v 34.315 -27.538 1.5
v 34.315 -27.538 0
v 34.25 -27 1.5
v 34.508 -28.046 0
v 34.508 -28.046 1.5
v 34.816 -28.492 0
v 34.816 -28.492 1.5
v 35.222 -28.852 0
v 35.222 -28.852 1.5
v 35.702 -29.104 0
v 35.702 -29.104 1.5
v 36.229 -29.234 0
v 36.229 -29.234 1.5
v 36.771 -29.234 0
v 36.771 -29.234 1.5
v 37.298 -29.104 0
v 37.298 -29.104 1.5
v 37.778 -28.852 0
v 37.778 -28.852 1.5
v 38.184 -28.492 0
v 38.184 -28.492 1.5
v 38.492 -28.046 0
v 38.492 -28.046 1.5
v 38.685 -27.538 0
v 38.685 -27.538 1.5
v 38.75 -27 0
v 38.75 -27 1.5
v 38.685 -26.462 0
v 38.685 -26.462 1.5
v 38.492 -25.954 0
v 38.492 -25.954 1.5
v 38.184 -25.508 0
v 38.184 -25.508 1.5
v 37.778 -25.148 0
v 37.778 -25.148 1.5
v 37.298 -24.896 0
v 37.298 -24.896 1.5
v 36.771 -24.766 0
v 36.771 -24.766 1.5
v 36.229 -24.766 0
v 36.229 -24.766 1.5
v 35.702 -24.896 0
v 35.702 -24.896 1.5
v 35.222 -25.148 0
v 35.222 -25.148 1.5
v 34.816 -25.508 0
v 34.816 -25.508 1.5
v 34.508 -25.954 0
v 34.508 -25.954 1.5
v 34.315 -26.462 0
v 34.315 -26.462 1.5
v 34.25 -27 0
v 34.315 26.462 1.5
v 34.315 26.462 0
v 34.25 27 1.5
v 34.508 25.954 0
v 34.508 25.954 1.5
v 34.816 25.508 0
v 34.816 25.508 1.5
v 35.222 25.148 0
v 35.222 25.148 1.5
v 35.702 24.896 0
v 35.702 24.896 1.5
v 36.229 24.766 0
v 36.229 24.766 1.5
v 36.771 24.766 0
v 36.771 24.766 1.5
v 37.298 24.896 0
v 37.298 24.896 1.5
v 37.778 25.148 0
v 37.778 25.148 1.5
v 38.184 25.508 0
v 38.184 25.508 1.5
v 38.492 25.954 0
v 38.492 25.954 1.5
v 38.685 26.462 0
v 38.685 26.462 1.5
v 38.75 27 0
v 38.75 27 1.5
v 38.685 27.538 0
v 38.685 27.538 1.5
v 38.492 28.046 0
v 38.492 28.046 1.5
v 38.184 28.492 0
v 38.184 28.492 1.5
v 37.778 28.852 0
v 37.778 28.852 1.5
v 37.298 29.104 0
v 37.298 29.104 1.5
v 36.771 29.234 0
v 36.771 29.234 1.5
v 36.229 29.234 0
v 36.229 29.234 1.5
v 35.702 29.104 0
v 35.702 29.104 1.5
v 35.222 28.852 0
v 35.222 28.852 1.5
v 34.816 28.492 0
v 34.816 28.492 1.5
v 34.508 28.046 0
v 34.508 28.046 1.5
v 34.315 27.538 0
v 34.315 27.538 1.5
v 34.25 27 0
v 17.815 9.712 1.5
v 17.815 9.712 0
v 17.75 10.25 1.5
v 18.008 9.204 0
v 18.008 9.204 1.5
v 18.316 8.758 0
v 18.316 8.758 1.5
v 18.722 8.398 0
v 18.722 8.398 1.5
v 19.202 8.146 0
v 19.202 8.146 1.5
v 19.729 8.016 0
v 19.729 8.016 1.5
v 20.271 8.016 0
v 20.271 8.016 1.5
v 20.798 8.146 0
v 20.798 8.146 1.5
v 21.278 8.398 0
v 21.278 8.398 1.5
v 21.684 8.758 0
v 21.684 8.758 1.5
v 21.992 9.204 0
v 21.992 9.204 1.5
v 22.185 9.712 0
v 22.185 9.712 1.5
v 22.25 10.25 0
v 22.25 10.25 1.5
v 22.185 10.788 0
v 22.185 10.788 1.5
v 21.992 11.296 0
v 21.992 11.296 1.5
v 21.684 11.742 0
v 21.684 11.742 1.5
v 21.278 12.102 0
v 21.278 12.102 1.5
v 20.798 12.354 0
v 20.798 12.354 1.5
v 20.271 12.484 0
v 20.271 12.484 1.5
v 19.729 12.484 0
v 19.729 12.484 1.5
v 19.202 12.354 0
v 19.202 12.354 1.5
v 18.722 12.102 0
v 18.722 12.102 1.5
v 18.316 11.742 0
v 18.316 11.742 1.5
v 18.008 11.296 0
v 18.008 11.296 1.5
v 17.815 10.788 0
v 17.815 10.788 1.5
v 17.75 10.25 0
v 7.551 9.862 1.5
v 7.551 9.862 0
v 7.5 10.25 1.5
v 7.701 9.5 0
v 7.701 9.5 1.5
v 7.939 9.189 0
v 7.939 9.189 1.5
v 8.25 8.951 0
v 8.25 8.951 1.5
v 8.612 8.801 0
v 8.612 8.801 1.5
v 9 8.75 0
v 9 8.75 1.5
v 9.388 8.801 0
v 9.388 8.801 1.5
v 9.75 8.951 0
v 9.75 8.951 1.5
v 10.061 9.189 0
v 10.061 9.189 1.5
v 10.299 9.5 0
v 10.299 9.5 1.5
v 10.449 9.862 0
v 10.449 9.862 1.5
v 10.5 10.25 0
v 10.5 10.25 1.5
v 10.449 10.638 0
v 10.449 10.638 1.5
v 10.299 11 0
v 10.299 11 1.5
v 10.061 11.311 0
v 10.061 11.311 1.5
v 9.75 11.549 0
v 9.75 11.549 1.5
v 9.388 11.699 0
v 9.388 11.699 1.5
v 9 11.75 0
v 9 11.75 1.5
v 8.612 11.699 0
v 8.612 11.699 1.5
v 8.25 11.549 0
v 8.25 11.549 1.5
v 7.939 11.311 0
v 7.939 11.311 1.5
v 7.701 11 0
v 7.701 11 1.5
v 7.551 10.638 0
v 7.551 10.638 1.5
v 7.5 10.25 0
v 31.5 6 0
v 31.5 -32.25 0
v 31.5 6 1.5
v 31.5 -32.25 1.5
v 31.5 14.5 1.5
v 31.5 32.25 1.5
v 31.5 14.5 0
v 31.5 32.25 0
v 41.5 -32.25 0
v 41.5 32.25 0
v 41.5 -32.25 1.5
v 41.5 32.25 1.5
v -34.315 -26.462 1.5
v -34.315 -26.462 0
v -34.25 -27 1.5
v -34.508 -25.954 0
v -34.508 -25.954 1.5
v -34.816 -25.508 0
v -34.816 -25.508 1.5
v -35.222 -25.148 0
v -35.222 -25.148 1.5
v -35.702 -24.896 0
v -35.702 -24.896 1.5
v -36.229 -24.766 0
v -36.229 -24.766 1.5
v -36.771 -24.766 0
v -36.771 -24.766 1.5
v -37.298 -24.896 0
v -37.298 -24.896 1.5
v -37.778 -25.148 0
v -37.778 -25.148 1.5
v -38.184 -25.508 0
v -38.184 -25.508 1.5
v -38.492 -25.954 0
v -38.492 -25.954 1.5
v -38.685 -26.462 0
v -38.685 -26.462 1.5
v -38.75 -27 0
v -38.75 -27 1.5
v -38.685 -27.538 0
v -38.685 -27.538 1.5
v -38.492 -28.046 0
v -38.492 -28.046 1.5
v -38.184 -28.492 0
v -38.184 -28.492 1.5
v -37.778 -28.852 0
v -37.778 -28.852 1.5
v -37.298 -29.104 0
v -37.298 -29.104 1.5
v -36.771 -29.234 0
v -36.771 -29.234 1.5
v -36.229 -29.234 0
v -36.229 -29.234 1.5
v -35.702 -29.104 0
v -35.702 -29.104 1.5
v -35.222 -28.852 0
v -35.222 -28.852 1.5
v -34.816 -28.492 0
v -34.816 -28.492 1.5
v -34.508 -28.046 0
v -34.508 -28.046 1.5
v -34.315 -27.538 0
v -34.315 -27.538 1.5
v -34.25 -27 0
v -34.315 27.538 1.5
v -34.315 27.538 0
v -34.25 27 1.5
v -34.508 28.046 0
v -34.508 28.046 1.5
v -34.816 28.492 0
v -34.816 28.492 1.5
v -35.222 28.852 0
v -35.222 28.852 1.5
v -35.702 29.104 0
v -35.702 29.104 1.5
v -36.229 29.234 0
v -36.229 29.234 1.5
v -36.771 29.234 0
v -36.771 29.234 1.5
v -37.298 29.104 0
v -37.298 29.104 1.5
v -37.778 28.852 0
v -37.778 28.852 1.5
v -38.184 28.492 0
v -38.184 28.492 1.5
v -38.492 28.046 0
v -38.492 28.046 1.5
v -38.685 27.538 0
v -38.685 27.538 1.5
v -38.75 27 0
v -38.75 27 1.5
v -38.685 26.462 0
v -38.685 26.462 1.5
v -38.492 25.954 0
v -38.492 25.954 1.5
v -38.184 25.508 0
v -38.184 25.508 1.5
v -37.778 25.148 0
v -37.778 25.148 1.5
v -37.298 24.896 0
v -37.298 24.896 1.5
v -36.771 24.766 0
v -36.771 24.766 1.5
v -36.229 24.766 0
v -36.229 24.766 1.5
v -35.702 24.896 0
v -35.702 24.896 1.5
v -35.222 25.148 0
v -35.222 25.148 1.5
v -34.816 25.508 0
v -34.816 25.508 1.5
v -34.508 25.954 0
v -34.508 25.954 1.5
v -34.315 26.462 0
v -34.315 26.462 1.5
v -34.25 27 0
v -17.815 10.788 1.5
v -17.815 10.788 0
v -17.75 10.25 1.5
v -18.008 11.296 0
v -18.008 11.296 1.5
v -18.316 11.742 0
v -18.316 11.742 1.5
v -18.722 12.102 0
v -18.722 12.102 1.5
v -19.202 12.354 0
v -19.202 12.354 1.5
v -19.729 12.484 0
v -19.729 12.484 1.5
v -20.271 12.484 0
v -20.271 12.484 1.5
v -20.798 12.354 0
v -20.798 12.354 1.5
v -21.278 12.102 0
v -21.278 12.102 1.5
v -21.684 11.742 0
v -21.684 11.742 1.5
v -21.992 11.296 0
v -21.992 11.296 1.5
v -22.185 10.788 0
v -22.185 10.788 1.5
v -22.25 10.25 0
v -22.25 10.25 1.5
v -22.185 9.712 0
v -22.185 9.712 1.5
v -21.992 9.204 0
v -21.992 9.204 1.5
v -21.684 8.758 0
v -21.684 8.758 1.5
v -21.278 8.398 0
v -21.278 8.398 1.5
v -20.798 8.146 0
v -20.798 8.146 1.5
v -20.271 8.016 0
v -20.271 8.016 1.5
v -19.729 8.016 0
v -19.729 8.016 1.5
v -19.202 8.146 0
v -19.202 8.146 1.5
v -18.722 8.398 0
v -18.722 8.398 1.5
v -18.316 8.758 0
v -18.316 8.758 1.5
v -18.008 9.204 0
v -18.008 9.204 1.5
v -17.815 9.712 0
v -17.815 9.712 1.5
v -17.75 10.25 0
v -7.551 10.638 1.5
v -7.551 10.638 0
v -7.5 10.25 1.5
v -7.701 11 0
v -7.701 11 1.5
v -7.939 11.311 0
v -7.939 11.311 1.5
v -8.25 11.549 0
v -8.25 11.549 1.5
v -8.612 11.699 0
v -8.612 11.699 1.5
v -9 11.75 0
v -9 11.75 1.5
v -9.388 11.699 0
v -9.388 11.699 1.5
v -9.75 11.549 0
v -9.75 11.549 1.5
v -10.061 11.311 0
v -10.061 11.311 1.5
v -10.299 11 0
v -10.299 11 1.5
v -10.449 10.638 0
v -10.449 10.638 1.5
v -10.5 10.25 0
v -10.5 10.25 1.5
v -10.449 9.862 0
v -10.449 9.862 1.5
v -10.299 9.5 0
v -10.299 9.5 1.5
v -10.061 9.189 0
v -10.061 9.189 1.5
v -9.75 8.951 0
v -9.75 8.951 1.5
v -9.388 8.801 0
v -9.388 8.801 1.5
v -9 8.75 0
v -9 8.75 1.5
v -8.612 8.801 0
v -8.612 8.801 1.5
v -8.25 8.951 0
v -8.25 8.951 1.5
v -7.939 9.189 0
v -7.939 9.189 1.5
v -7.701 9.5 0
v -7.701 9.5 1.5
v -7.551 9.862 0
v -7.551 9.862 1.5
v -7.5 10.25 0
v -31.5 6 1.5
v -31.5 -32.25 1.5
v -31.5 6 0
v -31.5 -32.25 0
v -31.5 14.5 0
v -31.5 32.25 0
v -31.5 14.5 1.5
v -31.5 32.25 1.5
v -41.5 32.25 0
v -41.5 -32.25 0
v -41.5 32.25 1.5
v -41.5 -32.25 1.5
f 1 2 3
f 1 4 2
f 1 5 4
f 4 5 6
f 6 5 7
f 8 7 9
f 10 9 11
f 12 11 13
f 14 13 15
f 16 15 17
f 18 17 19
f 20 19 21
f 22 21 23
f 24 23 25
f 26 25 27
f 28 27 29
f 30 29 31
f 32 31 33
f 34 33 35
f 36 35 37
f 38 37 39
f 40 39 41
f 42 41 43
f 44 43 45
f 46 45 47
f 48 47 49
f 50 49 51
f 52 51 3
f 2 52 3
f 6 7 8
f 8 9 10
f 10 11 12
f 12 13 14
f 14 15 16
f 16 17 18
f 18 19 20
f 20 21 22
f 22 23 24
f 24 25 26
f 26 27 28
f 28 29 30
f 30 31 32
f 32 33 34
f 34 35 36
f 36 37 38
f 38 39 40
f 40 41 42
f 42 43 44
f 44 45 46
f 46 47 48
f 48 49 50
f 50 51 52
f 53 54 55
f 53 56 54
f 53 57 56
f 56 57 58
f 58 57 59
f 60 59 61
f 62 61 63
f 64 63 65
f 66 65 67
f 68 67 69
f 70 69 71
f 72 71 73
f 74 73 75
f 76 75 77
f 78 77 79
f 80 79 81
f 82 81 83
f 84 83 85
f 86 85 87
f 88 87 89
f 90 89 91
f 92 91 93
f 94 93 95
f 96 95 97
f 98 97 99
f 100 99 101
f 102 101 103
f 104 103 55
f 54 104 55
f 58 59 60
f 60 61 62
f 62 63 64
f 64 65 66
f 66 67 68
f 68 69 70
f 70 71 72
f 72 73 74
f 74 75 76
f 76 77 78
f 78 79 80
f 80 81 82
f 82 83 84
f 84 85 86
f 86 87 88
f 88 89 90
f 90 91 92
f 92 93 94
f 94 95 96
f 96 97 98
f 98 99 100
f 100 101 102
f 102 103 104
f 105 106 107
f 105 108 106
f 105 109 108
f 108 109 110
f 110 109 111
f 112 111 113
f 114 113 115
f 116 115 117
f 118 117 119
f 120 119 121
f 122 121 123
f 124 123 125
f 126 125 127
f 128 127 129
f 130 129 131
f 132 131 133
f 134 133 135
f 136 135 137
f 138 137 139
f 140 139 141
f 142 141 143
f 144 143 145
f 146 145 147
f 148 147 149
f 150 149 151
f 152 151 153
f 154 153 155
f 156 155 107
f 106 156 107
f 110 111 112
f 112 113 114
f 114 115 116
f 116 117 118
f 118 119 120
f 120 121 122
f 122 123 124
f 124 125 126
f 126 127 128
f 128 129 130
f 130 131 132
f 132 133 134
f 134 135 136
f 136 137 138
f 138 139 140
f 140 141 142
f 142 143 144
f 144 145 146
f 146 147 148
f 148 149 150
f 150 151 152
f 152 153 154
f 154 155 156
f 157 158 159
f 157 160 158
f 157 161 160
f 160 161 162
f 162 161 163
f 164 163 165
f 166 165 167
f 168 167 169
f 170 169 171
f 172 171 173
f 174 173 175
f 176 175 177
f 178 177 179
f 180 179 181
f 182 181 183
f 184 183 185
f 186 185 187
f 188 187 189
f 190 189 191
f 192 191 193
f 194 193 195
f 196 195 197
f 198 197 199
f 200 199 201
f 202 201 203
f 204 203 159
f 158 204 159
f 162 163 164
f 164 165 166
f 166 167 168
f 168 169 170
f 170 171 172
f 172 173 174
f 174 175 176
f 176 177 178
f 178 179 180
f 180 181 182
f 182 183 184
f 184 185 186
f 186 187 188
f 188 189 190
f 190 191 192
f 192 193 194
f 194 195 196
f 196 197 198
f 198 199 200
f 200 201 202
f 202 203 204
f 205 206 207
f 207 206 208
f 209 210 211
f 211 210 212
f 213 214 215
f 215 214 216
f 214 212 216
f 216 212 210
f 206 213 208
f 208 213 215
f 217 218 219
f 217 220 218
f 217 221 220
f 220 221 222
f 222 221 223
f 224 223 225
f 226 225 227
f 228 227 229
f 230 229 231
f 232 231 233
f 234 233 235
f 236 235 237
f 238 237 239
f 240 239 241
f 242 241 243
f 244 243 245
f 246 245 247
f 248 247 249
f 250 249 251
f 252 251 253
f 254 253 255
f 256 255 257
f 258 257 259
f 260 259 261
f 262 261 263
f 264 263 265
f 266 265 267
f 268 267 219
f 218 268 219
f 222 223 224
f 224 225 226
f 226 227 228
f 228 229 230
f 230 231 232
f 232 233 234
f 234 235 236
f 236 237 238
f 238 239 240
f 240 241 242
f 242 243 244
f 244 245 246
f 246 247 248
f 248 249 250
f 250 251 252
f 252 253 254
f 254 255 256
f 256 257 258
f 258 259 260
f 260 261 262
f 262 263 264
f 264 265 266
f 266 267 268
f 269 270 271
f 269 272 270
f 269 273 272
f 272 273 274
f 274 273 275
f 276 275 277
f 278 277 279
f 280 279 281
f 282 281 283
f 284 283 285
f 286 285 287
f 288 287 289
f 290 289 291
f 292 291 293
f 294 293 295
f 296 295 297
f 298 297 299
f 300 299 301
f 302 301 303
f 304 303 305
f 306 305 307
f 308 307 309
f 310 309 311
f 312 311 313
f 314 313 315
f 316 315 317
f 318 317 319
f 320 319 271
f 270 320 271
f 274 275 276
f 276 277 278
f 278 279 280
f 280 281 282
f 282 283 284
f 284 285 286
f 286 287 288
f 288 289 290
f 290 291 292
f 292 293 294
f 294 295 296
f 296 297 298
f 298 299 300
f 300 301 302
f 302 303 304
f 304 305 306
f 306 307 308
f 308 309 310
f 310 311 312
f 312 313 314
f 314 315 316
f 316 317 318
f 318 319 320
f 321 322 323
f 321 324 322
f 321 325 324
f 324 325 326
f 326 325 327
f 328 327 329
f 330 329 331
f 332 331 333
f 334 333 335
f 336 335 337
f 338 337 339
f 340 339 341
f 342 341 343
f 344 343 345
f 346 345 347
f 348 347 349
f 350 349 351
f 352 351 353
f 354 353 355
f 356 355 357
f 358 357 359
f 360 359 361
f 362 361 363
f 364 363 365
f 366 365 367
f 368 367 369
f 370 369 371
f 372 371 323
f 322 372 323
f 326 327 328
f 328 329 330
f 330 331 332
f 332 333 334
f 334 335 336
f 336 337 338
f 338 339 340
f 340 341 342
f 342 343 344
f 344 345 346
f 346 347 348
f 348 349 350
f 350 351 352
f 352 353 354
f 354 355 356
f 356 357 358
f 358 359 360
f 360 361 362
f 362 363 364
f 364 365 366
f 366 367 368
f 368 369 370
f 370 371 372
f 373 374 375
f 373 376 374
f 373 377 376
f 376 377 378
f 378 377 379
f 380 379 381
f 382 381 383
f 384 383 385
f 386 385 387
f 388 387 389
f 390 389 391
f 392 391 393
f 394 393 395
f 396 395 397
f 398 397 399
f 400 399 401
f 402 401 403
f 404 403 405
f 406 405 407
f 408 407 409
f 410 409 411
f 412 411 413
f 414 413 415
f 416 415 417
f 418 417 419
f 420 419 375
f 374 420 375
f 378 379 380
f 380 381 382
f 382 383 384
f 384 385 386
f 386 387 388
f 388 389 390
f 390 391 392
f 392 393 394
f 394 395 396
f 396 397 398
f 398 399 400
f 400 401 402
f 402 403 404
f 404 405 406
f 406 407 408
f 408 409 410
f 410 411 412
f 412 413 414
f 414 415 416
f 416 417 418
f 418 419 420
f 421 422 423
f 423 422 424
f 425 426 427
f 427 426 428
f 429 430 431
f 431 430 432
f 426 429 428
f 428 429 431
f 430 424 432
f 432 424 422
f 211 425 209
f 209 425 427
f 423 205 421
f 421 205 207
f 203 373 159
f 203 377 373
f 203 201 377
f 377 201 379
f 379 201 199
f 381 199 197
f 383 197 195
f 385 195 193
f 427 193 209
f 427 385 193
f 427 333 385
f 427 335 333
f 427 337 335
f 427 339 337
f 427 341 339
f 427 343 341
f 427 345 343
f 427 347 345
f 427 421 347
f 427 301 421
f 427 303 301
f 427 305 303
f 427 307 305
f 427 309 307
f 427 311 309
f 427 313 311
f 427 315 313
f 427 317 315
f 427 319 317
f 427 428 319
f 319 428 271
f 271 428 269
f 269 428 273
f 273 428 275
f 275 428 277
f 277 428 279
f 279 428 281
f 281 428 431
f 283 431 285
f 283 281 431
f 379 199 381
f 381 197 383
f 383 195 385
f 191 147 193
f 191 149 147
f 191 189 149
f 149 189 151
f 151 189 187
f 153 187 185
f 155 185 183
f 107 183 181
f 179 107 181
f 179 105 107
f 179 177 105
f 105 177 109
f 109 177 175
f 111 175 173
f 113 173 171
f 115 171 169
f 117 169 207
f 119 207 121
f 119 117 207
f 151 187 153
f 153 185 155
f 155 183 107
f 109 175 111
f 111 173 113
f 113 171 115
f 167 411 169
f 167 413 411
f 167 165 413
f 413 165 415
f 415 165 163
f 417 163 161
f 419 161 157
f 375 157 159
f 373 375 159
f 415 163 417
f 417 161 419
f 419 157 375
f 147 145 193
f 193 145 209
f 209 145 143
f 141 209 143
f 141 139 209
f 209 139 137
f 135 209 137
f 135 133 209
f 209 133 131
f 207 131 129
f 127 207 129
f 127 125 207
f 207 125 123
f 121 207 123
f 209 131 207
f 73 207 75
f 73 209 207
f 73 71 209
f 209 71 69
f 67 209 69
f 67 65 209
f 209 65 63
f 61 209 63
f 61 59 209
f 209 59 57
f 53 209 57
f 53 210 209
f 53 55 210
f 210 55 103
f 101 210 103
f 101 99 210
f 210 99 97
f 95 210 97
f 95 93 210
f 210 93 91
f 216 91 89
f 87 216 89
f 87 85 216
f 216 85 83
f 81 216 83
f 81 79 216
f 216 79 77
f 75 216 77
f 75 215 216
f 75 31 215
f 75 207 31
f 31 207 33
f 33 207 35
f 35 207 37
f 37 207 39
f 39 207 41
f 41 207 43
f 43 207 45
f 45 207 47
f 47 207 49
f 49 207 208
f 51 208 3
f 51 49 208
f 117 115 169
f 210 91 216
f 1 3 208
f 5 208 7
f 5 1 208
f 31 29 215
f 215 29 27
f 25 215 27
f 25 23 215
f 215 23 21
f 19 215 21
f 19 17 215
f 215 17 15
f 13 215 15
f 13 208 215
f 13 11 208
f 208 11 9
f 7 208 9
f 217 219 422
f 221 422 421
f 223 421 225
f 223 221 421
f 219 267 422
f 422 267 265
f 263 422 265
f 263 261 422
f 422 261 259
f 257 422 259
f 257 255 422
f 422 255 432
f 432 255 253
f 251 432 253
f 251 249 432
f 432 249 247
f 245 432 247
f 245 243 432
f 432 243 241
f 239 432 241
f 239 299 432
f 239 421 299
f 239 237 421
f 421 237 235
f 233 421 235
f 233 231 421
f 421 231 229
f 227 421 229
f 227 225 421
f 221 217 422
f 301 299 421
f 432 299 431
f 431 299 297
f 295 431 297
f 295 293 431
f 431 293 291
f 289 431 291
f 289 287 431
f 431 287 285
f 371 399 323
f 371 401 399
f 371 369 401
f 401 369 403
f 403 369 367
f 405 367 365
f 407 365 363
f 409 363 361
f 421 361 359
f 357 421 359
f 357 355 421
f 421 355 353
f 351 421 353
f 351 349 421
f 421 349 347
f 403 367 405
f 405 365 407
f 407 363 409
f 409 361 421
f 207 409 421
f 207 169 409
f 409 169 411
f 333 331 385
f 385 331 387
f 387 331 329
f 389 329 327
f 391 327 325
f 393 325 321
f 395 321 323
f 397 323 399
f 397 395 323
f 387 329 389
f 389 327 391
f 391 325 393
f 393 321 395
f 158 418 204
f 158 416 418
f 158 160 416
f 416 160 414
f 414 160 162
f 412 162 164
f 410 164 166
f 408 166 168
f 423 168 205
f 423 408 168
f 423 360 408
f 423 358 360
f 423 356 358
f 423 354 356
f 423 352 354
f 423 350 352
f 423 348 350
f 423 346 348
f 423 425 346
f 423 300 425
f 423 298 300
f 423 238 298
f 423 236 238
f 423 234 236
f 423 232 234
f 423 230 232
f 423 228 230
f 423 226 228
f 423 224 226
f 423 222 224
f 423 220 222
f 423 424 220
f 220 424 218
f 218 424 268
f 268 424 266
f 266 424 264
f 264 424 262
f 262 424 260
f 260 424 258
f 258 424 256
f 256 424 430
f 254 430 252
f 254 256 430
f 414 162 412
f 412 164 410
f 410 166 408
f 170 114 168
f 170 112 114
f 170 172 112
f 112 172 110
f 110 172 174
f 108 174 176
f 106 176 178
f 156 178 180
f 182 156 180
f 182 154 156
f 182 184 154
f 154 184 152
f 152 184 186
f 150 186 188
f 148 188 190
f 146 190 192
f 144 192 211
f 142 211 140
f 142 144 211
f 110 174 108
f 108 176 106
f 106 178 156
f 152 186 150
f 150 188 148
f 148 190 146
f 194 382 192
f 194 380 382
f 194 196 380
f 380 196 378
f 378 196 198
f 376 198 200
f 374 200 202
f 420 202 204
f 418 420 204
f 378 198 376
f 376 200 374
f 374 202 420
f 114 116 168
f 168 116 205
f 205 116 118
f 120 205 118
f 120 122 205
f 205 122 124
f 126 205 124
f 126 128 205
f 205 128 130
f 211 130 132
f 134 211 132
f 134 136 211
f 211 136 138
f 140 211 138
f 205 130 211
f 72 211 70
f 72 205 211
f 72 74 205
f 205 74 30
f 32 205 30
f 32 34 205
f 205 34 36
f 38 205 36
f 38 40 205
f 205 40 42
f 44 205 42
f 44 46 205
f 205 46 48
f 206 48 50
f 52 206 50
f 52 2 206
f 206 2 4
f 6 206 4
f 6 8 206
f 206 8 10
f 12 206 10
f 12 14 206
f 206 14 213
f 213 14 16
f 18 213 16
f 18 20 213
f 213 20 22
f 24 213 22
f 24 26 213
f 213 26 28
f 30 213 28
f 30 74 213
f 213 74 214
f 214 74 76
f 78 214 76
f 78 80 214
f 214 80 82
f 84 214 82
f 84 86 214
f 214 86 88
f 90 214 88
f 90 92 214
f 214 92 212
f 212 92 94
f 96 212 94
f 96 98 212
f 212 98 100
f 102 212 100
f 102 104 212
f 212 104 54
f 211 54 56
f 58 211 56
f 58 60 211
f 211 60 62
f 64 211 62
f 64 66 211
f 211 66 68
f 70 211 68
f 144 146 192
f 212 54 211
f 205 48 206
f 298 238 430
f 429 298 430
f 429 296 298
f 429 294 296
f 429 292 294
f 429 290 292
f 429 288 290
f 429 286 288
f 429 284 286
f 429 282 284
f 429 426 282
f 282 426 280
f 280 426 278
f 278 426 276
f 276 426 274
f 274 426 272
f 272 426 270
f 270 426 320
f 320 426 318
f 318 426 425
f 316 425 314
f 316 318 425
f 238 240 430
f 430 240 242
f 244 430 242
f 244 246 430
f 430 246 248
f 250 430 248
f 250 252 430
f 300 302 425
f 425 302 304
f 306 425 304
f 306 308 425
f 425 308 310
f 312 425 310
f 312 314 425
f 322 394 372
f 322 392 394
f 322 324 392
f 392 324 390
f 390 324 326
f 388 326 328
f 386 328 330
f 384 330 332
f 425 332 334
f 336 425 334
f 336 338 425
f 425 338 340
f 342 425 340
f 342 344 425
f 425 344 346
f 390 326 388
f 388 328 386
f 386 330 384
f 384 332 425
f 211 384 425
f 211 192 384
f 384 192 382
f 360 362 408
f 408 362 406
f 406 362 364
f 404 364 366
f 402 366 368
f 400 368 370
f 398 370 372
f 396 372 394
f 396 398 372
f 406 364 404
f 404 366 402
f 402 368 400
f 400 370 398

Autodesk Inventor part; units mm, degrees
ref_plane "YZ Plane" through (0, 0, 0) normal (1, 0, 0) x (0, 1, 0)
ref_plane "XZ Plane" through (0, 0, 0) normal (0, 1, 0) x (-1, 0, 0)
ref_plane "XY Plane" through (0, 0, 0) normal (0, 0, 1) x (1, 0, 0)
sketch "Sketch1" plane through (0, 0, 0) normal (0, 0, 1) x (1, 0, 0)
  line L0 (-41.5, 50) -> (41.5, 50)
  line L1 (41.5, 50) -> (41.5, -50)
  line L2 (41.5, -50) -> (-41.5, -50)
  line L3 (-41.5, -50) -> (-41.5, 50)
  line L4 (31.5, 40) -> (-31.5, 40)
  line L5 (-31.5, 40) -> (-31.5, -40)
  line L6 (-31.5, -40) -> (31.5, -40)
  line L7 (31.5, -40) -> (31.5, 40)
  line L8 (-41.5, -45) -> (41.5, -45) construction
  line L9 (0, 71.7466) -> (0, -78.0681) construction
  line L10 (-60.2597, 0) -> (74.2823, 0) construction
  line L11 (-36.5, 50) -> (-36.5, -50) construction
  circle A0 centre (-36.5, -27) radius 2.25
  line L12 (-41.5, 45) -> (41.5, 45) construction
  circle A1 centre (-36.5, 45) radius 2.25
  circle A2 centre (-36.5, -45) radius 2.25
  circle A3 centre (-36.5, 27) radius 2.25
  circle A4 centre (-25, -45) radius 2.25
  circle A5 centre (25, -45) radius 2.25
  line L13 (30, 50) -> (30, -50) construction
  line L14 (-30, 50) -> (-30, -50) construction
  line L15 (-31, -38) -> (31, -38)
  line L16 (31, -38) -> (31, -52)
  line L17 (31, -52) -> (-31, -52)
  line L18 (-31, -52) -> (-31, -38)
  line L19 (-31.5, -40) -> (-16.5, -40)
  line L20 (-16.5, -40) -> (-16.5, -20)
  line L21 (-16.5, -20) -> (-31.5, -20)
  line L22 (-31.5, -20) -> (-31.5, -40)
  line L23 (-26.5, -26) -> (-21.5, -26) construction
  line L24 (-26.5, -27.5) -> (-21.5, -27.5)
  line L25 (-21.5, -24.5) -> (-26.5, -24.5)
  arc A6 (-26.5, -24.5) -> (-26.5, -27.5) centre (-26.5, -26) ccw
  arc A7 (-21.5, -27.5) -> (-21.5, -24.5) centre (-21.5, -26) ccw
  line L26 (-26.5, -34) -> (-21.5, -34) construction
  line L27 (-26.5, -35.5) -> (-21.5, -35.5)
  line L28 (-21.5, -32.5) -> (-26.5, -32.5)
  arc A8 (-26.5, -32.5) -> (-26.5, -35.5) centre (-26.5, -34) ccw
  arc A9 (-21.5, -35.5) -> (-21.5, -32.5) centre (-21.5, -34) ccw
  point P0 (0, 0)
  point P1 (0, 50)
  point P2 (41.5, 0)
  point P3 (0, 45)
  point P4 (-24, -26)
  point P5 (-24, -20)
  point P6 (-16.5, -30)
  point P7 (-24, -34)
  dimension "d0" = 83
  dimension "d1" = 100
  dimension "d5" = 5
  dimension "d6" = 5
  dimension "d9" = 5
  dimension "d12" = 4.5
  dimension "d17" = 5
  dimension "d41" = 4.5
  dimension "d42" = 4.5
  dimension "d87" = 4.5
  dimension "d89" = 4.5
  dimension "d90" = 4.5
  dimension "d91" = 30
  dimension "d92" = 30
  dimension "d93" = 5
  dimension "d94" = 5
  dimension "d97" = 1
  dimension "d98" = 2
  dimension "d99" = 2
  dimension "d100" = 1
  dimension "d103" = 15
  dimension "d104" = 20
  dimension "d105" = 5
  dimension "d106" = 3
  dimension "d109" = 5
  dimension "d110" = 3
  dimension "d112" = 6
  dimension "d113" = 6
  dimension "d141" = 27
  dimension "d142" = 27
sketch "Sketch4" plane through (0, 0, 0) normal (0, 0, 1) x (1, 0, 0)
  circle A0 centre (-36.5, 27) radius 2.25 projected
  circle A1 centre (-36.5, -27) radius 2.25 projected
  line L0 (-31.5, 40) -> (-31.5, -40) projected
  line L1 (-41.5, -50) -> (-41.5, 50) projected
  line L2 (-41.5, -32.25) -> (-31.5, -32.25)
  line L3 (-31.5, -32.25) -> (-31.5, 32.25)
  line L4 (-31.5, 32.25) -> (-41.5, 32.25)
  line L5 (-41.5, 32.25) -> (-41.5, -32.25)
  line L6 (31.5, -40) -> (31.5, 40) projected
  line L7 (41.5, 50) -> (41.5, -50) projected
  line L8 (31.5, -18) -> (31.5, 0)
  line L9 (-31.5, 0) -> (-31.5, -18)
  line L10 (-16.5, -20) -> (-31.5, -20) projected
  line L11 (-31.5, -40) -> (31.5, -40) projected
  line L12 (-16.5, -40) -> (-16.5, -20) projected
  line L13 (-31.5, 14.5) -> (0, 14.5)
  line L14 (0, 14.5) -> (0, 6)
  line L15 (0, 6) -> (-31.5, 6)
  line L16 (-31.5, 6) -> (-31.5, 14.5)
  circle A2 centre (-9, 10.25) radius 1.5
  line L17 (0, 10.25) -> (-31.5, 10.25) construction
  circle A3 centre (-20, 10.25) radius 2.25
  line L18 (0, 28.3973) -> (0, -18) construction
  point P0 (0, 0)
  dimension "d116" = 3
  dimension "d117" = 3
  dimension "d151" = 8.5
  dimension "d152" = 3
  dimension "d153" = 9
  dimension "d154" = 22
  dimension "d155" = 4.5
  dimension "d156" = 20
extrude "Extrusion11" add sketch "Sketch4" along normal blind 1.5 contours L0 L2 L1 L4 | L13 L14 L15 L0
mirror "Mirror10" about plane through (0, 0, 0) normal (1, 0, 0) of "Extrusion11"
equation "\"d12\" = screw"
equation "\"d41\" = screw"
equation "\"d42\" = screw"
equation "\"d87\" = screw"
equation "\"d89\" = screw"
equation "\"d90\" = screw"
equation "\"screw\" = 4.5"
properties part number "Side" material "PC/ABS Plastic"
